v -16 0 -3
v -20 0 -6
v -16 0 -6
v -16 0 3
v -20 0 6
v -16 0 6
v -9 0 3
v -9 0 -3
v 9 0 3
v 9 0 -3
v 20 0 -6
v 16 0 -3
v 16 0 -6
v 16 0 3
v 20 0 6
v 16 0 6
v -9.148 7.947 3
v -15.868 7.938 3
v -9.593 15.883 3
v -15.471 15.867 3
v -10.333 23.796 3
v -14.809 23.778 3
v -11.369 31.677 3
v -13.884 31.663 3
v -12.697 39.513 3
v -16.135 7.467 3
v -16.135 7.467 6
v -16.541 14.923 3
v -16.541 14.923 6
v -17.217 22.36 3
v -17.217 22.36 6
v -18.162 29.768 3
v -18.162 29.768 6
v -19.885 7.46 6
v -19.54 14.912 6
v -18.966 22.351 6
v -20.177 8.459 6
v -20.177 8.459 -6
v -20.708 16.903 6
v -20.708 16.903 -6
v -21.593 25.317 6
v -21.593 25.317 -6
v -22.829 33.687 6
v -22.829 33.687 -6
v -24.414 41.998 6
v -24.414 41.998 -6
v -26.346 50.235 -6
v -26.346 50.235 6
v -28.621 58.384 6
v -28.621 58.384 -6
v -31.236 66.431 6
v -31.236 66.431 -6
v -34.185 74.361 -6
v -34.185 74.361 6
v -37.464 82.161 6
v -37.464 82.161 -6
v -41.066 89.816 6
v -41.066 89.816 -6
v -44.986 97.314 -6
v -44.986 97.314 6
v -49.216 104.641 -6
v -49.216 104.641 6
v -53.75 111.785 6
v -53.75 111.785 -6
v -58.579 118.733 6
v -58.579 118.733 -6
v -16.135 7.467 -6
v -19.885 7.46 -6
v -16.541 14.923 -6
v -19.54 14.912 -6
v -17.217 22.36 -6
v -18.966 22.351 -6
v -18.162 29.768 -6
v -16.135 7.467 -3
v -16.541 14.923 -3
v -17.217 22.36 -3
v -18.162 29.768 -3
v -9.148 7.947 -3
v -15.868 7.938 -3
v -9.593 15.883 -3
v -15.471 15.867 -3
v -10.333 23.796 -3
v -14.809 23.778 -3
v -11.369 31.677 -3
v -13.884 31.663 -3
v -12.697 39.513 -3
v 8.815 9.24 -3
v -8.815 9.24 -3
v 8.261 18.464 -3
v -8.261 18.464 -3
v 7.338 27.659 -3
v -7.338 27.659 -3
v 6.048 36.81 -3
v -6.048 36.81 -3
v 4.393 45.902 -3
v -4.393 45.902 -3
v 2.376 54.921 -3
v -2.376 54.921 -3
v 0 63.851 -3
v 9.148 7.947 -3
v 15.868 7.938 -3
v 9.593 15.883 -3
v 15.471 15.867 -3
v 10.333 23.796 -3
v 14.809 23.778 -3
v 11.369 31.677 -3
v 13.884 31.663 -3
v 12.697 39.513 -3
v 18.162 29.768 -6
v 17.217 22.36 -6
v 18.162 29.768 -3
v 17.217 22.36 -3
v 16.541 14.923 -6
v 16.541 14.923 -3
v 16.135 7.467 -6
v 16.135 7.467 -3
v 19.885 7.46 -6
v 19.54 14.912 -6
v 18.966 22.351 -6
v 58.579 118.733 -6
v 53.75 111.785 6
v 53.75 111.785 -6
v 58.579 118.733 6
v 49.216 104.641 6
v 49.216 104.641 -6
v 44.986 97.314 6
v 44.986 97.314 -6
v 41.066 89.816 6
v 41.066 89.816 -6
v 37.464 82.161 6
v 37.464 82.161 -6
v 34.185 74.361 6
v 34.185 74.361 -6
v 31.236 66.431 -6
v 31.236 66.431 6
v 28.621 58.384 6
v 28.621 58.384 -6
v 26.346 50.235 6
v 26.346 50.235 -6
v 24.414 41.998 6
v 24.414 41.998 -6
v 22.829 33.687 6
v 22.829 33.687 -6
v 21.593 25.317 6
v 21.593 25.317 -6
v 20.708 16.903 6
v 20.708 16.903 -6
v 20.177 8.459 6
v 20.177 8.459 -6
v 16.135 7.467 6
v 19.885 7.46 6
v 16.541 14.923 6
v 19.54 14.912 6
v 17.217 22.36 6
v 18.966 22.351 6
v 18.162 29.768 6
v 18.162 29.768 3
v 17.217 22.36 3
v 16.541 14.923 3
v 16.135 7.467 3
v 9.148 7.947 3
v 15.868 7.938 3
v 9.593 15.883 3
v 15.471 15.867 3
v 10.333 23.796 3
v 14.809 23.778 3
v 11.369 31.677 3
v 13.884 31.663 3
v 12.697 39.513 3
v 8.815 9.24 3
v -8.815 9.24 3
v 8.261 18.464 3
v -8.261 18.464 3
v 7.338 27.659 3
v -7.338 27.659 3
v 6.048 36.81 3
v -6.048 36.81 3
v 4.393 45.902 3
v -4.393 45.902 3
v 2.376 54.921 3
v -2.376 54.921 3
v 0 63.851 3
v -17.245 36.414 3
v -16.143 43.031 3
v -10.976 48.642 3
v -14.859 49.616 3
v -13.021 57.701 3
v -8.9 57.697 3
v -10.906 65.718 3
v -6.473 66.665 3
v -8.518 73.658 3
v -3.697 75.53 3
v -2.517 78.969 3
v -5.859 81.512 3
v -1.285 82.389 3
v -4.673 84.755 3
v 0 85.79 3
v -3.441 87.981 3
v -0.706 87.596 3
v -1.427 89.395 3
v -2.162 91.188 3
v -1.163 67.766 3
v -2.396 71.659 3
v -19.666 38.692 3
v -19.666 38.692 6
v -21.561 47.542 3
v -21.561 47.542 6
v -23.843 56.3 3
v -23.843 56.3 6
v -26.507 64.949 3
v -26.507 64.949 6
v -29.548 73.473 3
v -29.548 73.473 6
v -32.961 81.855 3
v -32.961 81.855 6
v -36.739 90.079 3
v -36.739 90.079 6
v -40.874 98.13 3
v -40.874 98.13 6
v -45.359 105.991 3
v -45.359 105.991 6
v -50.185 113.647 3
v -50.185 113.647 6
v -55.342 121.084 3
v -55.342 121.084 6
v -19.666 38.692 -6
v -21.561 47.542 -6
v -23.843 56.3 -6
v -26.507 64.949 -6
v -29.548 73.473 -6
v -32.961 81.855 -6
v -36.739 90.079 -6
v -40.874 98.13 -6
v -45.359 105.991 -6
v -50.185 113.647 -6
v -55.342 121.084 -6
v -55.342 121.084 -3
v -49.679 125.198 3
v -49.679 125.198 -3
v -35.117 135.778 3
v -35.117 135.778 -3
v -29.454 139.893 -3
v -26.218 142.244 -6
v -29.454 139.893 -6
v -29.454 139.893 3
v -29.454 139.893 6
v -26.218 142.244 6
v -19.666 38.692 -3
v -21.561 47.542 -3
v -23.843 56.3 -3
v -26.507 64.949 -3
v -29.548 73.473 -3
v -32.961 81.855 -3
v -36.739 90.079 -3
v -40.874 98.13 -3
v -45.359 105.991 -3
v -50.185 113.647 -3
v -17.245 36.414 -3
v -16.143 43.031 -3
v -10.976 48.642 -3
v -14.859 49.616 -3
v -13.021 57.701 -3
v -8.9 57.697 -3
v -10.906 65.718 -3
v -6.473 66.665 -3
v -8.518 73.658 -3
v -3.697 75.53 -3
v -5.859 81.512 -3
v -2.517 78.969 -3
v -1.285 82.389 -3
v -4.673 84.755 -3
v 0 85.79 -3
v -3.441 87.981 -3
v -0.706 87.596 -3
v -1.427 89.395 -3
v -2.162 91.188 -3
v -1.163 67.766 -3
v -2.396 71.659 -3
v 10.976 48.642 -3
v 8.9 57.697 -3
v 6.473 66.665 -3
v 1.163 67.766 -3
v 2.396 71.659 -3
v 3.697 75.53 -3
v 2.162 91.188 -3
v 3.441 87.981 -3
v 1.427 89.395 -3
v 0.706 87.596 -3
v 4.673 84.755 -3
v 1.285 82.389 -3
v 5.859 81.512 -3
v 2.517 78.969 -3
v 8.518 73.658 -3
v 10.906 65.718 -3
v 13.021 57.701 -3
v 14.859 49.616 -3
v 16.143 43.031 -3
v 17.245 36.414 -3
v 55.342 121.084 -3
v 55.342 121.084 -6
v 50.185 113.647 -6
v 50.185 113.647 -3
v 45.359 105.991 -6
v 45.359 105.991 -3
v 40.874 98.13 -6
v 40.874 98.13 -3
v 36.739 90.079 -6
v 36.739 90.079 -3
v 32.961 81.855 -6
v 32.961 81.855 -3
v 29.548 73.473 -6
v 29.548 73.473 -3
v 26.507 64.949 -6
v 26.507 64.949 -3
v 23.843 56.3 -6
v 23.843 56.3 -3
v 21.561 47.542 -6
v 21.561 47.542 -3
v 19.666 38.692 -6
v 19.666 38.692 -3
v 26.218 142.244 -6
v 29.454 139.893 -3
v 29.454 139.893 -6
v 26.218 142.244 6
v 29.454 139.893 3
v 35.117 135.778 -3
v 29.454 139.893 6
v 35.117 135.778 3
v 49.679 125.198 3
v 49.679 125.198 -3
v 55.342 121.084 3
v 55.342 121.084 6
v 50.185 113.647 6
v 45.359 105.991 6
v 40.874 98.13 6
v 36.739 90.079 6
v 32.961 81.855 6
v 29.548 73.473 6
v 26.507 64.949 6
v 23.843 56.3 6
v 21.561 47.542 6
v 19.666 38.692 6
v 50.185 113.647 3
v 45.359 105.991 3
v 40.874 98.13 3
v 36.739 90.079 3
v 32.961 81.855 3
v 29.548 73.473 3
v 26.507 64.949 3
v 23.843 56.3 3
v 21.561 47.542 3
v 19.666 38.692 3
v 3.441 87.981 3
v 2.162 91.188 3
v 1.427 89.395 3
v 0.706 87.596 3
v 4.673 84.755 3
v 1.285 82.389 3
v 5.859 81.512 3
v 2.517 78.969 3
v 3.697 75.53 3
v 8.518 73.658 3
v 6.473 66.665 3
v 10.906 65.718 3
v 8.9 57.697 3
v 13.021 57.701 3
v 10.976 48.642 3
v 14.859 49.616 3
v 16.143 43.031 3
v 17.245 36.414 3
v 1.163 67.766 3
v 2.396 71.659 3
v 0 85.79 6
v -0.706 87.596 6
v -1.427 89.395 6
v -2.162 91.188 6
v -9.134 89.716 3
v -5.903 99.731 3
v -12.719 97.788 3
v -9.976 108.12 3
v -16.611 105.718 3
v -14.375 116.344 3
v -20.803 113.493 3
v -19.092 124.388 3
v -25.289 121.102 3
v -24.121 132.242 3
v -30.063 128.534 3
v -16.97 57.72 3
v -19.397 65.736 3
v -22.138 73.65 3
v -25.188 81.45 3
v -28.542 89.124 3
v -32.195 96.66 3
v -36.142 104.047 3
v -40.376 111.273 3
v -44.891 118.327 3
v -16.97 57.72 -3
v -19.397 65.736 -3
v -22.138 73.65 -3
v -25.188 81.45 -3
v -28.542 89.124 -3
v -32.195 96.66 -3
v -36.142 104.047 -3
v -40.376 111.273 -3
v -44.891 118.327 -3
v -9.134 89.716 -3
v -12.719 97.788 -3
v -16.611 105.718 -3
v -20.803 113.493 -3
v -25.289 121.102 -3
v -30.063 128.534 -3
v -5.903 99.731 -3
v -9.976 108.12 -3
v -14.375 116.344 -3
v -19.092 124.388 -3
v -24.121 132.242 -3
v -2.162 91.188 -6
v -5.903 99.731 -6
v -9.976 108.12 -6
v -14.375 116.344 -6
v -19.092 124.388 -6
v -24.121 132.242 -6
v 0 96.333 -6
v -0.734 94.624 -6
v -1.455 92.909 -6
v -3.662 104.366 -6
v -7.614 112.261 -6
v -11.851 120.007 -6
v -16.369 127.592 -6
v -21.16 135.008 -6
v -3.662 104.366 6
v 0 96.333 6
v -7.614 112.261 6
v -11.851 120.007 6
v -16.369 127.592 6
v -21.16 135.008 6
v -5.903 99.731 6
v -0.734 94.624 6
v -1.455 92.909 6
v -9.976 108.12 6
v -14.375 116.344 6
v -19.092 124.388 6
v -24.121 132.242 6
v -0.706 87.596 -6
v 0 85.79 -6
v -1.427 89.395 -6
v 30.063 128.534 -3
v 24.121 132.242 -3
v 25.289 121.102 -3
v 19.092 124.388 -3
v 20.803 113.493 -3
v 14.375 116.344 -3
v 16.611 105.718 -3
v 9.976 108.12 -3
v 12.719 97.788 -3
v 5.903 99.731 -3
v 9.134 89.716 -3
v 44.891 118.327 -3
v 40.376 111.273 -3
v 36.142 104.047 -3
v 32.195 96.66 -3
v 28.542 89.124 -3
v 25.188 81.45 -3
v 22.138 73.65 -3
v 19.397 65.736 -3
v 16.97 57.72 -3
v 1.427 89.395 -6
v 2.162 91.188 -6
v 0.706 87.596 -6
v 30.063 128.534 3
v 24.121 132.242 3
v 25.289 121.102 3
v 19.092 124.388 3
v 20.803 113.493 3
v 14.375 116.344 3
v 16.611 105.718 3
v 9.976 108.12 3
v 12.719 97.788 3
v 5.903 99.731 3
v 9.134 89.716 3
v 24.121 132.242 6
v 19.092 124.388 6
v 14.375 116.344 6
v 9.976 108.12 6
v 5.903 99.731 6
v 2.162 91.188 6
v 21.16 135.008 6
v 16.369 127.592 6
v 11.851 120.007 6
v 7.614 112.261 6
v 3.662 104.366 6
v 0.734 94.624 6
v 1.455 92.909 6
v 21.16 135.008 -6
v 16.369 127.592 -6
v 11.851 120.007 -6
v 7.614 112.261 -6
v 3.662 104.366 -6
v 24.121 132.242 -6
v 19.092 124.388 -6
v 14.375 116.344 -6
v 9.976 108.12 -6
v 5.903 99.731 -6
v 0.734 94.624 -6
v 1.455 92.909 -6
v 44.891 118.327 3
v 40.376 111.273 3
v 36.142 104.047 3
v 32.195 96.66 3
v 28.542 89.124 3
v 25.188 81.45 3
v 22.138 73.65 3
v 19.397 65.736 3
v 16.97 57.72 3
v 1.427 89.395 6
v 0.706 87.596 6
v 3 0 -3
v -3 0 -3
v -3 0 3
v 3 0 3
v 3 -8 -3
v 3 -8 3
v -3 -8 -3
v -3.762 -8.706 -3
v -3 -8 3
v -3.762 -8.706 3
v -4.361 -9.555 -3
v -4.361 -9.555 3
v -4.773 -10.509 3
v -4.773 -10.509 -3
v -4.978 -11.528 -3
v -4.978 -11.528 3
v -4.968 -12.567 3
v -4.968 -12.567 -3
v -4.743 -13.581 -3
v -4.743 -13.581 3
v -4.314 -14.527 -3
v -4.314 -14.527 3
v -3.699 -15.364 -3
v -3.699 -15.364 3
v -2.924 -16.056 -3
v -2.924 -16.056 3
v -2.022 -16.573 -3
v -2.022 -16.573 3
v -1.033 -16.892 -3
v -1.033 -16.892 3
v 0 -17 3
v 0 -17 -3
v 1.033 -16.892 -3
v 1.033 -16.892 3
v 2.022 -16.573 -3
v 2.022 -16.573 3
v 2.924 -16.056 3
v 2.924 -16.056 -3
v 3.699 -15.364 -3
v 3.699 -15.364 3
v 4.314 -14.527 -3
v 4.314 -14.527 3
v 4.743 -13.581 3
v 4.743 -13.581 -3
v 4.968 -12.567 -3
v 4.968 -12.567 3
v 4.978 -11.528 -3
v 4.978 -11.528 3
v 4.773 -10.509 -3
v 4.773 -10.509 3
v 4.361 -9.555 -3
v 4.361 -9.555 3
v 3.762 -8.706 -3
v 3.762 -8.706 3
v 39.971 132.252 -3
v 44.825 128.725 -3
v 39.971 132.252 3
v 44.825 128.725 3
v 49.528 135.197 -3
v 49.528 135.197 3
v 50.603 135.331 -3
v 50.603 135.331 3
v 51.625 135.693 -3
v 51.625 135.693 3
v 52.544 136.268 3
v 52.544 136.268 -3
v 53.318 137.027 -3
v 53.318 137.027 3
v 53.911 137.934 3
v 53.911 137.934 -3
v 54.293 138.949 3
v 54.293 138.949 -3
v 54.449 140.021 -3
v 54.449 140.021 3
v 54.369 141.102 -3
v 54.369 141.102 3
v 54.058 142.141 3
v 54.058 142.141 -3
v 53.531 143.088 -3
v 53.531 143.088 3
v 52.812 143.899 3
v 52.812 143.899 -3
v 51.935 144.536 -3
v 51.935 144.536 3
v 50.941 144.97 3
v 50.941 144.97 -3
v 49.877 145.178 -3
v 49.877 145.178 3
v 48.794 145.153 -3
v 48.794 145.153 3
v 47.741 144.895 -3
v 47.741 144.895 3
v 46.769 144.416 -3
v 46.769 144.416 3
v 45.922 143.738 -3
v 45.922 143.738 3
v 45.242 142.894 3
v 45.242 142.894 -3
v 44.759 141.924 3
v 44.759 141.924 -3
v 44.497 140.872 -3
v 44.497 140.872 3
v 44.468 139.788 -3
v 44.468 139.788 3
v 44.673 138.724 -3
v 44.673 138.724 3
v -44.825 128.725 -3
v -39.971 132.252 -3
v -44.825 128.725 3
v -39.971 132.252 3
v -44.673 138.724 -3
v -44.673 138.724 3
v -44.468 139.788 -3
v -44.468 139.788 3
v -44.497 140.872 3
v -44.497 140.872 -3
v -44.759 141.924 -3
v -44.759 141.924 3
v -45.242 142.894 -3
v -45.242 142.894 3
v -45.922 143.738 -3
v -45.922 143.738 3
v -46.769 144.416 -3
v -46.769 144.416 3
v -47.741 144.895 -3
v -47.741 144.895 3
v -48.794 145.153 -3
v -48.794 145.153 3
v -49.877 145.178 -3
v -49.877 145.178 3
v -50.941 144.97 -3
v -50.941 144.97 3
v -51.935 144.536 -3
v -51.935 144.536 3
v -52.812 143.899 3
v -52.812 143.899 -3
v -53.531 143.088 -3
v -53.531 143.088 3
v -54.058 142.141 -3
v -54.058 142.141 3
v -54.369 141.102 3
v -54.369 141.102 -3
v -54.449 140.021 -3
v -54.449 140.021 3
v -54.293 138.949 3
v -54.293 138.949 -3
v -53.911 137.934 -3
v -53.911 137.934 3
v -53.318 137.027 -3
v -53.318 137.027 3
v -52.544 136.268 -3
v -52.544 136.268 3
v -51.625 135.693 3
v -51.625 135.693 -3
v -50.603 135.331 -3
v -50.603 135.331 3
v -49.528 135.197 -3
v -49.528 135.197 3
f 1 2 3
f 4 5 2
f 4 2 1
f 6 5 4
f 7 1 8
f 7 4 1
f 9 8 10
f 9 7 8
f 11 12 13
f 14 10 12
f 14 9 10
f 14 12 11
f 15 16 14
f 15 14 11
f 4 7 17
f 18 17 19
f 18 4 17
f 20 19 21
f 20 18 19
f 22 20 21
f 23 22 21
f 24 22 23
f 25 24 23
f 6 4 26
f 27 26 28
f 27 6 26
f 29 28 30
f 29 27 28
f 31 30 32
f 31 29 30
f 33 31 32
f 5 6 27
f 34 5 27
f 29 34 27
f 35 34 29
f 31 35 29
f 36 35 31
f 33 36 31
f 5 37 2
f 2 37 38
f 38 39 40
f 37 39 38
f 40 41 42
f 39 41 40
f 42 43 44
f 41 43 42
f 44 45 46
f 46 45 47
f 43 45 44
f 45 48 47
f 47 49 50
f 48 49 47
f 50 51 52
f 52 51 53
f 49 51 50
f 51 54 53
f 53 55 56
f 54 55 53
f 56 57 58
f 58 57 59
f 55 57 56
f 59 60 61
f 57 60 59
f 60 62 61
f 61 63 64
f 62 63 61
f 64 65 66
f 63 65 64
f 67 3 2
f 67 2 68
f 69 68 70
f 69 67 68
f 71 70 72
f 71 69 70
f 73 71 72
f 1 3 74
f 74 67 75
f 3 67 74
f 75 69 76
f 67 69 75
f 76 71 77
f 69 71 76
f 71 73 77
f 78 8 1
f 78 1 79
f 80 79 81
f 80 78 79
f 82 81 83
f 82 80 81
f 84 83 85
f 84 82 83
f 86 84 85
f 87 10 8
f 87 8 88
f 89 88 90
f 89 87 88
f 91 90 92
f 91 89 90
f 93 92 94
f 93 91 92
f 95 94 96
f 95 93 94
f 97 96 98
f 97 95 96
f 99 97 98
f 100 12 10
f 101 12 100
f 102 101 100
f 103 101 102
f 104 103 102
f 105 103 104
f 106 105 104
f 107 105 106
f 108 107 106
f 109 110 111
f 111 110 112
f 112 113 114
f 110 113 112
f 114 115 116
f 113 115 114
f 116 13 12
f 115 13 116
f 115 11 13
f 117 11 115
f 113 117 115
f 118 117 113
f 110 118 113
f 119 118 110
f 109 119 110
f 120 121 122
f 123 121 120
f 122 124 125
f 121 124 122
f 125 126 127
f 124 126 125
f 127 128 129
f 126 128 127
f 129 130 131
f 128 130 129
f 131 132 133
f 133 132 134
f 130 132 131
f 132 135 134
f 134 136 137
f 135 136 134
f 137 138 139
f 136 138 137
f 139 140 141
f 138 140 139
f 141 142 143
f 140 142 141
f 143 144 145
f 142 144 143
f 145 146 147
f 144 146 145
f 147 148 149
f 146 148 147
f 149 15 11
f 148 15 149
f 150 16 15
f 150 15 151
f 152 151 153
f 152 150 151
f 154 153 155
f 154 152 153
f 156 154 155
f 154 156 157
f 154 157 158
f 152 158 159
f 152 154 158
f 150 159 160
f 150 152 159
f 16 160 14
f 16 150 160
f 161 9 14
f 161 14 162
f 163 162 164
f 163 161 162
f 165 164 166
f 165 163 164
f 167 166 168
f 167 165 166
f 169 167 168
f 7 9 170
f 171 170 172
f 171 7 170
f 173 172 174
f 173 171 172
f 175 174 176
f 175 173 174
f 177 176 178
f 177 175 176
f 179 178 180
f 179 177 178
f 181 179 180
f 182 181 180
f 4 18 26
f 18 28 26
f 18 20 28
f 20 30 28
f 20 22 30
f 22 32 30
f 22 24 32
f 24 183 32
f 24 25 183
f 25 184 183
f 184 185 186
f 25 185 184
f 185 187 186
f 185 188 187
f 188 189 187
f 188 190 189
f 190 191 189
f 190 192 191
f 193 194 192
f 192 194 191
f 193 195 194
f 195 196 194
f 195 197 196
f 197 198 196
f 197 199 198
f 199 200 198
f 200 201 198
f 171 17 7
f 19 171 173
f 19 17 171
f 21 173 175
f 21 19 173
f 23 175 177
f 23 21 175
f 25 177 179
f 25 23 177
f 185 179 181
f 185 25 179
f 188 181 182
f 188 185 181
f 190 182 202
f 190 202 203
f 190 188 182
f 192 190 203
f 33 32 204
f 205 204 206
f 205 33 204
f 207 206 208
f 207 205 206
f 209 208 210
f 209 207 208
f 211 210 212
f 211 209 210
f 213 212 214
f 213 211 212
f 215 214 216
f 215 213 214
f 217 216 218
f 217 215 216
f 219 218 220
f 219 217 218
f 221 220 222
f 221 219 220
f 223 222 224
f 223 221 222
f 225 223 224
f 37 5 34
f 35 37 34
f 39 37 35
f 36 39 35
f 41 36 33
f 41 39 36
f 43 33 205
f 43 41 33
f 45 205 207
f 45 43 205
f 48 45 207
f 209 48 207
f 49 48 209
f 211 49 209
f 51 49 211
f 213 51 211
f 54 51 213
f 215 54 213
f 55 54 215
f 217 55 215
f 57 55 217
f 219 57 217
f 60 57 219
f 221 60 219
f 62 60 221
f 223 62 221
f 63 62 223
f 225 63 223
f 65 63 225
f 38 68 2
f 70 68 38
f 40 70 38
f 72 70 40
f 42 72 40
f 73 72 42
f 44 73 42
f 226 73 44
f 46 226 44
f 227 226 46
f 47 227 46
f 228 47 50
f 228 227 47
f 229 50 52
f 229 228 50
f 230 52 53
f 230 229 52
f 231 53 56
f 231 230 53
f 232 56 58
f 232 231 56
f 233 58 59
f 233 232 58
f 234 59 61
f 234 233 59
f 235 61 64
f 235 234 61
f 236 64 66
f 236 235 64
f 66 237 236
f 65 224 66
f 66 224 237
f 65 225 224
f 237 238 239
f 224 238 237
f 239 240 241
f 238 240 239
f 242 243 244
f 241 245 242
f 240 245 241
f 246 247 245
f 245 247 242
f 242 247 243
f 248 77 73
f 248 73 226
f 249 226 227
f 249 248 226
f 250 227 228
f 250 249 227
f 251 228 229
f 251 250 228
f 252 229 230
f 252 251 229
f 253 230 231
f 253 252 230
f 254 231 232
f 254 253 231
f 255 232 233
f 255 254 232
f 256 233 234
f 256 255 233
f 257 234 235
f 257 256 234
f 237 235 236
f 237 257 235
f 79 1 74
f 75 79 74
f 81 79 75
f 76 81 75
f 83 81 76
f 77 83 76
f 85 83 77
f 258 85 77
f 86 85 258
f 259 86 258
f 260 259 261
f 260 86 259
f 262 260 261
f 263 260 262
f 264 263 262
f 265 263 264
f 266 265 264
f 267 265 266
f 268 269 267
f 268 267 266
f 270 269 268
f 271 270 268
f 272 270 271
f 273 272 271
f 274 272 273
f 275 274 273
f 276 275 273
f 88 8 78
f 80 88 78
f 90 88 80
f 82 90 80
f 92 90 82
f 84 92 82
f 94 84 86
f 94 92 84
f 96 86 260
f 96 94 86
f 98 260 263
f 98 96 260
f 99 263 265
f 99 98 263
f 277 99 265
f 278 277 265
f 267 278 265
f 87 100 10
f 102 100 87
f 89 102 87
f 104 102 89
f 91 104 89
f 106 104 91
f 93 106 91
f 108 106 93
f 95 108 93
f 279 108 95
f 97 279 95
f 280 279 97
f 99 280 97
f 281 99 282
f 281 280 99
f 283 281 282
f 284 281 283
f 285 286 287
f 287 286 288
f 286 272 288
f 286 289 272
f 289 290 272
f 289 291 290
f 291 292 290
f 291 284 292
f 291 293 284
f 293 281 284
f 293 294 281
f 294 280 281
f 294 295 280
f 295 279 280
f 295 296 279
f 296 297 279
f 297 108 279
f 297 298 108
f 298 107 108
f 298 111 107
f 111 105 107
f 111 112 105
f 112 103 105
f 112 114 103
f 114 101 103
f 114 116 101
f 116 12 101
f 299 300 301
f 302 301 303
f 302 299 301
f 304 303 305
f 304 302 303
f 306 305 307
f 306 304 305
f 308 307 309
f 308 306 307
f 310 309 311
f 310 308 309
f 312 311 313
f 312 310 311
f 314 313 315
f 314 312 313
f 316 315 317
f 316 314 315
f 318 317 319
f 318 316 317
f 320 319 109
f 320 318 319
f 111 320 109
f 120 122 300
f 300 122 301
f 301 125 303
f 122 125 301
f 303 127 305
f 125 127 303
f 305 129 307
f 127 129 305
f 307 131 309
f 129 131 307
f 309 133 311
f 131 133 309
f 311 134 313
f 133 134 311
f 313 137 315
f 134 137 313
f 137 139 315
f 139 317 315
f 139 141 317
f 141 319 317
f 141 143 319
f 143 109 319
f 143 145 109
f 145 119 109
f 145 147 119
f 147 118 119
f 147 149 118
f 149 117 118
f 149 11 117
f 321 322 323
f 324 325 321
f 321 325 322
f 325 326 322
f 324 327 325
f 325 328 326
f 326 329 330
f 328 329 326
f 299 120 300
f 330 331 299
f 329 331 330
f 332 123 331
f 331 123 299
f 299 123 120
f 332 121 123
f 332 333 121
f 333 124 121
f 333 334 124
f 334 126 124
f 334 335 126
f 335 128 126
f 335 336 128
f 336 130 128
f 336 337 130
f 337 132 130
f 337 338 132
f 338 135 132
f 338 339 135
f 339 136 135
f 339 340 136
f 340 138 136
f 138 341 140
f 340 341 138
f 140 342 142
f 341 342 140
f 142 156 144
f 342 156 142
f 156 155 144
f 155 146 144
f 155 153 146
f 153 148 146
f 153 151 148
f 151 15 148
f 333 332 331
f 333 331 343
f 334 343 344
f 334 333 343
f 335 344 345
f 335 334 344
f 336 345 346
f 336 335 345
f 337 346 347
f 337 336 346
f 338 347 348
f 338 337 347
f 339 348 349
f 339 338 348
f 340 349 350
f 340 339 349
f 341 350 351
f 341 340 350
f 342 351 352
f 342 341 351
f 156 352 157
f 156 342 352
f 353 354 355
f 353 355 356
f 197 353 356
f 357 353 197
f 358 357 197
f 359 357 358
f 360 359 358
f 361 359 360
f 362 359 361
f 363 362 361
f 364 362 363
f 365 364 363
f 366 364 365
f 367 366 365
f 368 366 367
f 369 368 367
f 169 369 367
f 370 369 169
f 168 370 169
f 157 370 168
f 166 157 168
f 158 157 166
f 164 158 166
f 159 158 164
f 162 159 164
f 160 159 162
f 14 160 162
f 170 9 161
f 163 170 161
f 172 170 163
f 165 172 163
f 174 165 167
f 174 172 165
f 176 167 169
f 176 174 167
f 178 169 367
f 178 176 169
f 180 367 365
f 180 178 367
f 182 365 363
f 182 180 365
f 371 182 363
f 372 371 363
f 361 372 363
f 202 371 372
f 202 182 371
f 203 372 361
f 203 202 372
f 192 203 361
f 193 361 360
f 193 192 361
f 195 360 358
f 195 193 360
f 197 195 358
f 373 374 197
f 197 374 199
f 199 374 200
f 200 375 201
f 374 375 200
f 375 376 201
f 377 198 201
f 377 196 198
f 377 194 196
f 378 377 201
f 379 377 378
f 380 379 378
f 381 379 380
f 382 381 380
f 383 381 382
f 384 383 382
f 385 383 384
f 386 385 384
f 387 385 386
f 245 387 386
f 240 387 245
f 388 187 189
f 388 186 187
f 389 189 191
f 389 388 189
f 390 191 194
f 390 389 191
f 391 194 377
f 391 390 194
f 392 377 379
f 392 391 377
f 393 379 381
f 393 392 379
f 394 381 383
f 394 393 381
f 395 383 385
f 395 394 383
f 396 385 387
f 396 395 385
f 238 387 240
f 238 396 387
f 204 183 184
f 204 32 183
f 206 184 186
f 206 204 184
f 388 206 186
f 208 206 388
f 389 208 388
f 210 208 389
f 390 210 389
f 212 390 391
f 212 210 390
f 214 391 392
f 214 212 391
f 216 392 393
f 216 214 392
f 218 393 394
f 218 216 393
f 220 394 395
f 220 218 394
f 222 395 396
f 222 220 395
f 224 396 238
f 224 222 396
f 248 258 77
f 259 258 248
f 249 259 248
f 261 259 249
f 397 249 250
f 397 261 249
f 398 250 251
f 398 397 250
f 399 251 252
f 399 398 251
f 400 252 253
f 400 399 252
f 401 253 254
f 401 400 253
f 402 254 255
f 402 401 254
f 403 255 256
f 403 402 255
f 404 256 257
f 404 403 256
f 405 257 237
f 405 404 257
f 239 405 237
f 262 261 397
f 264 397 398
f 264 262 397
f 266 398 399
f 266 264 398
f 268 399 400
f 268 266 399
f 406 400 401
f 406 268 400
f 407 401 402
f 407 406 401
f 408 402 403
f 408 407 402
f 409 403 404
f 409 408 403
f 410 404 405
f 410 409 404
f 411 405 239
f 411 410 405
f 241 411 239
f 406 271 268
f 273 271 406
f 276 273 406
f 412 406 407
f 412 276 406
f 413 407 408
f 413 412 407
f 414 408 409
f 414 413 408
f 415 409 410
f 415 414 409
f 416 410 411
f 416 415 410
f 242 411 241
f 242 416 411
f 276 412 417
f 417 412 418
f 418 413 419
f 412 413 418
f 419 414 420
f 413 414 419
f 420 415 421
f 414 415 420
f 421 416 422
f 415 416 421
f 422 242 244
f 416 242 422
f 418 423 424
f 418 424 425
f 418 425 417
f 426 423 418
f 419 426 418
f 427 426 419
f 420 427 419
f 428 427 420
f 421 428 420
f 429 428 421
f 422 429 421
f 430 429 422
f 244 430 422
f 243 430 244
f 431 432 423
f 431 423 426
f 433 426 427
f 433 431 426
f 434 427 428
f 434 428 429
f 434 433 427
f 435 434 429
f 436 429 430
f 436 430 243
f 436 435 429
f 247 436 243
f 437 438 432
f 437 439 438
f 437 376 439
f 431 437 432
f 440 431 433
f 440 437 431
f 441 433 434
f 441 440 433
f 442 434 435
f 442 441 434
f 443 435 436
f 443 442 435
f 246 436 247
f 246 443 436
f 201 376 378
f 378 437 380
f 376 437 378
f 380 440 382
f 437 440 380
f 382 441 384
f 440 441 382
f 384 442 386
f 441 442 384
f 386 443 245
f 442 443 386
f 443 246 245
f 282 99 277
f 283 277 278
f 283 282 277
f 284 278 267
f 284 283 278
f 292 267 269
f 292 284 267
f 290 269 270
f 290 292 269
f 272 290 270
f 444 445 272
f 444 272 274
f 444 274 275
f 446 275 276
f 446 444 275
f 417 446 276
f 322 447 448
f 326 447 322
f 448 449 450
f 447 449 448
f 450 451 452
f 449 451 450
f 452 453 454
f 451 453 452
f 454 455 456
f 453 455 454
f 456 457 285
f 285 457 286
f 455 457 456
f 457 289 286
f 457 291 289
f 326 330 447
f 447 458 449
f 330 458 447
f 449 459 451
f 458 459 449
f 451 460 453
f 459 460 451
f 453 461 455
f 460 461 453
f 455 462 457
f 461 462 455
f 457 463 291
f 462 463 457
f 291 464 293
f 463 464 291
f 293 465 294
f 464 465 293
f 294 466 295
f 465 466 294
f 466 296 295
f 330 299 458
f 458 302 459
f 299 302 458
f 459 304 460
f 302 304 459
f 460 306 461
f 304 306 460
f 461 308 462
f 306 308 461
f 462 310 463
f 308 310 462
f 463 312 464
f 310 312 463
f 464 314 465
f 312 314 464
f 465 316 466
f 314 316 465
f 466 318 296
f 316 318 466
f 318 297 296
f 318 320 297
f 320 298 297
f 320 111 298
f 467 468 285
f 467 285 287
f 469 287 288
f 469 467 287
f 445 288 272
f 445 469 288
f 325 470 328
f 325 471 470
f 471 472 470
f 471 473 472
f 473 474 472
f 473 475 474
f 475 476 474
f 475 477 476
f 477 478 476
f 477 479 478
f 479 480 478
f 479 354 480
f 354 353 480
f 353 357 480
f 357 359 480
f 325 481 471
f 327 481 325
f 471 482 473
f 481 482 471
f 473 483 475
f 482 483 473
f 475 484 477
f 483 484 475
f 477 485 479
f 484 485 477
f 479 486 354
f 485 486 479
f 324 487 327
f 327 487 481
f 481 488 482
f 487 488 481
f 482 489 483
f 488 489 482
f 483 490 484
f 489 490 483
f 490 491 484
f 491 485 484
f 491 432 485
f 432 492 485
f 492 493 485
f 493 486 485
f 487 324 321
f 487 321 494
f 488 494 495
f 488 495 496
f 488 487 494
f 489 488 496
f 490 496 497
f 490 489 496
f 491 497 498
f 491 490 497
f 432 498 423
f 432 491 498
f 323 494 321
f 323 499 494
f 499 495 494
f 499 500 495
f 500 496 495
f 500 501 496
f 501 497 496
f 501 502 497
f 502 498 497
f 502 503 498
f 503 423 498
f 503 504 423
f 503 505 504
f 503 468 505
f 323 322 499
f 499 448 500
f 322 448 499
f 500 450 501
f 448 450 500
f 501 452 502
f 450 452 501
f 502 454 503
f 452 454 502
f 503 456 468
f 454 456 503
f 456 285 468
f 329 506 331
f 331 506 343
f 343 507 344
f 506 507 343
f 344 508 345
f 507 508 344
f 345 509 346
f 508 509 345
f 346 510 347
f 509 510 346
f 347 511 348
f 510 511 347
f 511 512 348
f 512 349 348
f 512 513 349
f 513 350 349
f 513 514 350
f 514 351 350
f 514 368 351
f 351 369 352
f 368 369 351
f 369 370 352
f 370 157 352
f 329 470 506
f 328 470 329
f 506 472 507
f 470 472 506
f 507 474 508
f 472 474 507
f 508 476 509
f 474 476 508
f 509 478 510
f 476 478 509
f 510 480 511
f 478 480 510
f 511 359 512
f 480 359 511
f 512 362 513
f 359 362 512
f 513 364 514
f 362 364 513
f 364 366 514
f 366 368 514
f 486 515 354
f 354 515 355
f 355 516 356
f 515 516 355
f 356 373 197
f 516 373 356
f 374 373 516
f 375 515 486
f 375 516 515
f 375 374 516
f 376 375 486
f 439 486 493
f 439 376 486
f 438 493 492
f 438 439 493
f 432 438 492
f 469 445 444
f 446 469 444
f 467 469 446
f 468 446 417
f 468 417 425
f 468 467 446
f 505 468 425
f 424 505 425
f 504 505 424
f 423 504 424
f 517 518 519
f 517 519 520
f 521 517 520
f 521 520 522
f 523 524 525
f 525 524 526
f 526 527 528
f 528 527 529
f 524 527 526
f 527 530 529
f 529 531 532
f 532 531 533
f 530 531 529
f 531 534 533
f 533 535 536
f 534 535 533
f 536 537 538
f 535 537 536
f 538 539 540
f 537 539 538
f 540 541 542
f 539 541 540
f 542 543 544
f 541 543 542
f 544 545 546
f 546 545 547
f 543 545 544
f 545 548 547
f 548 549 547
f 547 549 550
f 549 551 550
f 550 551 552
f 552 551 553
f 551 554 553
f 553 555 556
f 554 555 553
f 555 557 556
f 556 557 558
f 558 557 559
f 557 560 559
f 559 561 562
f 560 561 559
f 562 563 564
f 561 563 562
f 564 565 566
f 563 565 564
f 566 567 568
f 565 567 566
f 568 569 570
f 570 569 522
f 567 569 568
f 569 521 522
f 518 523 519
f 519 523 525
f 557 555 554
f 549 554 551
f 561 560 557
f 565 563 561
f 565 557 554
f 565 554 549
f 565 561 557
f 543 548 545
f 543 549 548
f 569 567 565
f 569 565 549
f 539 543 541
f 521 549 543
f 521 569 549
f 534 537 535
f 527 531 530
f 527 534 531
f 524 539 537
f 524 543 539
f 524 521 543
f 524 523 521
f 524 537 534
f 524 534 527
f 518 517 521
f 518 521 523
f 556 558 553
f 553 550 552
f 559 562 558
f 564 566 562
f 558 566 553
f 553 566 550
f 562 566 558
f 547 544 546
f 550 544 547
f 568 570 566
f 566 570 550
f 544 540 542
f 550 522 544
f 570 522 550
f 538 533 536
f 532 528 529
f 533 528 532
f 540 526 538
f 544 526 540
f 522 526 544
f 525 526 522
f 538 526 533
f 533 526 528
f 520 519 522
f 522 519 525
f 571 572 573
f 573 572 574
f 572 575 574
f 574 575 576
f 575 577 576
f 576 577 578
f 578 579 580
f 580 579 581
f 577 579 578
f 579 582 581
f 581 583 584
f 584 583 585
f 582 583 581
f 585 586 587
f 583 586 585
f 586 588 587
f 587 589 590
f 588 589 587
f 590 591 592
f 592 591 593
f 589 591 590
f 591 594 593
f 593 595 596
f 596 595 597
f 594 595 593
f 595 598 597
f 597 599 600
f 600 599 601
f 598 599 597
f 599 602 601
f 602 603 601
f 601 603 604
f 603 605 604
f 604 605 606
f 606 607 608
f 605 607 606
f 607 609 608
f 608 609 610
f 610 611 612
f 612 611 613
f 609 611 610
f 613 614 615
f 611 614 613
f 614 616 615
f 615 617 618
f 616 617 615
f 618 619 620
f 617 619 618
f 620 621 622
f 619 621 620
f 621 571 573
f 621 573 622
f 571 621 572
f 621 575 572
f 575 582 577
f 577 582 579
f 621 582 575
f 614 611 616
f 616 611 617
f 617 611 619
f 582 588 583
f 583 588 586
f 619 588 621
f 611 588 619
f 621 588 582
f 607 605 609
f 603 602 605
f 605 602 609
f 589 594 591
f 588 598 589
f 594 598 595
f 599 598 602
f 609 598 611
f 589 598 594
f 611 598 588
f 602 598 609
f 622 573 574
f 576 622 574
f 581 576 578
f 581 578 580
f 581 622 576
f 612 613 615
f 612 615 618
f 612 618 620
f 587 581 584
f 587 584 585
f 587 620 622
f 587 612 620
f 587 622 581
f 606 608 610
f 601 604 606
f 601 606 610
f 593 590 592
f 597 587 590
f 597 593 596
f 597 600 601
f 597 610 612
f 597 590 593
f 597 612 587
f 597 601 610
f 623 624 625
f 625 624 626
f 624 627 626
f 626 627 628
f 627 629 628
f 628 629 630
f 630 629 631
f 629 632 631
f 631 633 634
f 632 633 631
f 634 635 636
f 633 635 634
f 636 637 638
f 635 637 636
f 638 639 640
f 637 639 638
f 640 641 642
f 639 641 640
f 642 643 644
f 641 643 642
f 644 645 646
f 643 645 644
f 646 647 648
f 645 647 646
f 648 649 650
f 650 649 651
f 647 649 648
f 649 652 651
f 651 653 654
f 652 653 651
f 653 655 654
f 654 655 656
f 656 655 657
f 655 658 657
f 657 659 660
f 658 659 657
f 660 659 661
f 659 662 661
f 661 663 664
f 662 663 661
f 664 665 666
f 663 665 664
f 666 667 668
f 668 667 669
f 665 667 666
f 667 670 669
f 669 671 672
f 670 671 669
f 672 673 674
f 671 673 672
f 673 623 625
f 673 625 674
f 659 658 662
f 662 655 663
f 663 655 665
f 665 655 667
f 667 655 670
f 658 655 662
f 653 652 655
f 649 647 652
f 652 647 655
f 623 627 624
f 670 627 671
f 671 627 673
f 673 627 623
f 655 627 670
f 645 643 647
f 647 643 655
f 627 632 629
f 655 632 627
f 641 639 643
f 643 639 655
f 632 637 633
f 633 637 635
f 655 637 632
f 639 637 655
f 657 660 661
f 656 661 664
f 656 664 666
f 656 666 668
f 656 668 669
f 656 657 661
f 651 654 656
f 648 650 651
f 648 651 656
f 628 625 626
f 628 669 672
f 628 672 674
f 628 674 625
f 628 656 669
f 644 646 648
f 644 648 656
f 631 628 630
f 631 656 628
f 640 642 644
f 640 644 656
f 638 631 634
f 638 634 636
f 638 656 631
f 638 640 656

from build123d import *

# Parameters (mm, degrees)
SKETCH013_W  = 32
SKETCH013_H  = 3
PAD_DEPTH    = 3
PAD001_DEPTH = 3
PAD002_DEPTH = 3


with BuildPart() as main:
    # AdditivePipe: sweep along a path in Sketch
    with BuildLine(Plane.XY) as additivepipe_path:
        ThreePointArc((0, 0), (-10.865453, 68.601773), (-42.398227, 130.488326))
    # Sketch002 → AdditivePipe (sweep)
    with BuildSketch(Plane.XZ):
        Polygon((-20, 6), (-20, -6), (-16, -6), (-16, -3), (-9, -3), (9, -3), (16, -3), (16, -6), (20, -6), (20, 6), (16, 6), (16, 3), (9, 3), (-9, 3), (-16, 3), (-16, 6), align=None)
    sweep(path=additivepipe_path.line)

    # AdditivePipe001: sweep along a path in Sketch001
    with BuildLine(Plane.XY) as additivepipe001_path:
        ThreePointArc((42.398227, 130.488326), (10.865453, 68.601773), (0, 0))
    # Sketch002 → AdditivePipe001 (sweep)
    with BuildSketch(Plane.XZ):
        Polygon((-20, 6), (-20, -6), (-16, -6), (-16, -3), (-9, -3), (9, -3), (16, -3), (16, -6), (20, -6), (20, 6), (16, 6), (16, 3), (9, 3), (-9, 3), (-16, 3), (-16, 6), align=None)
    sweep(path=additivepipe001_path.line)

    # SubtractivePipe: sweep along a path in Sketch
    with BuildLine(Plane.XY) as subtractivepipe_path:
        ThreePointArc((0, 0), (-10.865453, 68.601773), (-42.398227, 130.488326))
    # Sketch013 (on Face1 of AdditivePipe001) → SubtractivePipe (sweep, cut)
    with BuildSketch(Plane.XZ):
        with Locations((0, 4.5)):
            Rectangle(SKETCH013_W, SKETCH013_H)
    subtractivepipe = sweep(path=subtractivepipe_path.line, mode=Mode.SUBTRACT)

    # SubtractivePipe001: sweep along a path in Sketch001
    with BuildLine(Plane.XY) as subtractivepipe001_path:
        ThreePointArc((42.398227, 130.488326), (10.865453, 68.601773), (0, 0))
    # Sketch013 (on Face1 of AdditivePipe001) → SubtractivePipe001 (sweep, cut)
    with BuildSketch(Plane.XZ):
        with Locations((0, 4.5)):
            Rectangle(SKETCH013_W, SKETCH013_H)
    subtractivepipe001 = sweep(path=subtractivepipe001_path.line, mode=Mode.SUBTRACT)

    # Mirrored: SubtractivePipe across XY
    add(subtractivepipe.mirror(Plane.XY), mode=Mode.SUBTRACT)

    # Mirrored001: SubtractivePipe001 across XY
    add(subtractivepipe001.mirror(Plane.XY), mode=Mode.SUBTRACT)


with BuildPart() as male1:
    # Sketch010 → Pad (new body, symmetric)
    with BuildSketch(Plane.XY):
        with BuildLine():
            Line((-3, 0), (3, 0))
            Line((3, 0), (3, -8))
            ThreePointArc((-3, -8), (0, -17), (3, -8))
            Line((-3, 0), (-3, -8))
        make_face()
    extrude(amount=PAD_DEPTH, both=True)


with BuildPart() as male3:
    # Sketch011 → Pad001 (new body, symmetric)
    with BuildSketch(Plane.XY):
        with BuildLine():
            Line((39.971176, 132.251682), (44.825278, 128.72497))
            Line((44.825278, 128.72497), (49.52756, 135.197106))
            ThreePointArc((49.52756, 135.197106), (52.390577, 144.241615), (44.673458, 138.723818))
            Line((39.971176, 132.251682), (44.673458, 138.723818))
        make_face()
    extrude(amount=PAD001_DEPTH, both=True)


with BuildPart() as male2:
    # Sketch012 → Pad002 (new body, symmetric)
    with BuildSketch(Plane.XY):
        with BuildLine():
            Line((-44.825278, 128.72497), (-39.971176, 132.251682))
            Line((-39.971176, 132.251682), (-44.673458, 138.723818))
            ThreePointArc((-44.673458, 138.723818), (-52.390577, 144.241615), (-49.52756, 135.197106))
            Line((-44.825278, 128.72497), (-49.52756, 135.197106))
        make_face()
    extrude(amount=PAD002_DEPTH, both=True)


solid = Compound([main.part, male1.part, male3.part, male2.part])
